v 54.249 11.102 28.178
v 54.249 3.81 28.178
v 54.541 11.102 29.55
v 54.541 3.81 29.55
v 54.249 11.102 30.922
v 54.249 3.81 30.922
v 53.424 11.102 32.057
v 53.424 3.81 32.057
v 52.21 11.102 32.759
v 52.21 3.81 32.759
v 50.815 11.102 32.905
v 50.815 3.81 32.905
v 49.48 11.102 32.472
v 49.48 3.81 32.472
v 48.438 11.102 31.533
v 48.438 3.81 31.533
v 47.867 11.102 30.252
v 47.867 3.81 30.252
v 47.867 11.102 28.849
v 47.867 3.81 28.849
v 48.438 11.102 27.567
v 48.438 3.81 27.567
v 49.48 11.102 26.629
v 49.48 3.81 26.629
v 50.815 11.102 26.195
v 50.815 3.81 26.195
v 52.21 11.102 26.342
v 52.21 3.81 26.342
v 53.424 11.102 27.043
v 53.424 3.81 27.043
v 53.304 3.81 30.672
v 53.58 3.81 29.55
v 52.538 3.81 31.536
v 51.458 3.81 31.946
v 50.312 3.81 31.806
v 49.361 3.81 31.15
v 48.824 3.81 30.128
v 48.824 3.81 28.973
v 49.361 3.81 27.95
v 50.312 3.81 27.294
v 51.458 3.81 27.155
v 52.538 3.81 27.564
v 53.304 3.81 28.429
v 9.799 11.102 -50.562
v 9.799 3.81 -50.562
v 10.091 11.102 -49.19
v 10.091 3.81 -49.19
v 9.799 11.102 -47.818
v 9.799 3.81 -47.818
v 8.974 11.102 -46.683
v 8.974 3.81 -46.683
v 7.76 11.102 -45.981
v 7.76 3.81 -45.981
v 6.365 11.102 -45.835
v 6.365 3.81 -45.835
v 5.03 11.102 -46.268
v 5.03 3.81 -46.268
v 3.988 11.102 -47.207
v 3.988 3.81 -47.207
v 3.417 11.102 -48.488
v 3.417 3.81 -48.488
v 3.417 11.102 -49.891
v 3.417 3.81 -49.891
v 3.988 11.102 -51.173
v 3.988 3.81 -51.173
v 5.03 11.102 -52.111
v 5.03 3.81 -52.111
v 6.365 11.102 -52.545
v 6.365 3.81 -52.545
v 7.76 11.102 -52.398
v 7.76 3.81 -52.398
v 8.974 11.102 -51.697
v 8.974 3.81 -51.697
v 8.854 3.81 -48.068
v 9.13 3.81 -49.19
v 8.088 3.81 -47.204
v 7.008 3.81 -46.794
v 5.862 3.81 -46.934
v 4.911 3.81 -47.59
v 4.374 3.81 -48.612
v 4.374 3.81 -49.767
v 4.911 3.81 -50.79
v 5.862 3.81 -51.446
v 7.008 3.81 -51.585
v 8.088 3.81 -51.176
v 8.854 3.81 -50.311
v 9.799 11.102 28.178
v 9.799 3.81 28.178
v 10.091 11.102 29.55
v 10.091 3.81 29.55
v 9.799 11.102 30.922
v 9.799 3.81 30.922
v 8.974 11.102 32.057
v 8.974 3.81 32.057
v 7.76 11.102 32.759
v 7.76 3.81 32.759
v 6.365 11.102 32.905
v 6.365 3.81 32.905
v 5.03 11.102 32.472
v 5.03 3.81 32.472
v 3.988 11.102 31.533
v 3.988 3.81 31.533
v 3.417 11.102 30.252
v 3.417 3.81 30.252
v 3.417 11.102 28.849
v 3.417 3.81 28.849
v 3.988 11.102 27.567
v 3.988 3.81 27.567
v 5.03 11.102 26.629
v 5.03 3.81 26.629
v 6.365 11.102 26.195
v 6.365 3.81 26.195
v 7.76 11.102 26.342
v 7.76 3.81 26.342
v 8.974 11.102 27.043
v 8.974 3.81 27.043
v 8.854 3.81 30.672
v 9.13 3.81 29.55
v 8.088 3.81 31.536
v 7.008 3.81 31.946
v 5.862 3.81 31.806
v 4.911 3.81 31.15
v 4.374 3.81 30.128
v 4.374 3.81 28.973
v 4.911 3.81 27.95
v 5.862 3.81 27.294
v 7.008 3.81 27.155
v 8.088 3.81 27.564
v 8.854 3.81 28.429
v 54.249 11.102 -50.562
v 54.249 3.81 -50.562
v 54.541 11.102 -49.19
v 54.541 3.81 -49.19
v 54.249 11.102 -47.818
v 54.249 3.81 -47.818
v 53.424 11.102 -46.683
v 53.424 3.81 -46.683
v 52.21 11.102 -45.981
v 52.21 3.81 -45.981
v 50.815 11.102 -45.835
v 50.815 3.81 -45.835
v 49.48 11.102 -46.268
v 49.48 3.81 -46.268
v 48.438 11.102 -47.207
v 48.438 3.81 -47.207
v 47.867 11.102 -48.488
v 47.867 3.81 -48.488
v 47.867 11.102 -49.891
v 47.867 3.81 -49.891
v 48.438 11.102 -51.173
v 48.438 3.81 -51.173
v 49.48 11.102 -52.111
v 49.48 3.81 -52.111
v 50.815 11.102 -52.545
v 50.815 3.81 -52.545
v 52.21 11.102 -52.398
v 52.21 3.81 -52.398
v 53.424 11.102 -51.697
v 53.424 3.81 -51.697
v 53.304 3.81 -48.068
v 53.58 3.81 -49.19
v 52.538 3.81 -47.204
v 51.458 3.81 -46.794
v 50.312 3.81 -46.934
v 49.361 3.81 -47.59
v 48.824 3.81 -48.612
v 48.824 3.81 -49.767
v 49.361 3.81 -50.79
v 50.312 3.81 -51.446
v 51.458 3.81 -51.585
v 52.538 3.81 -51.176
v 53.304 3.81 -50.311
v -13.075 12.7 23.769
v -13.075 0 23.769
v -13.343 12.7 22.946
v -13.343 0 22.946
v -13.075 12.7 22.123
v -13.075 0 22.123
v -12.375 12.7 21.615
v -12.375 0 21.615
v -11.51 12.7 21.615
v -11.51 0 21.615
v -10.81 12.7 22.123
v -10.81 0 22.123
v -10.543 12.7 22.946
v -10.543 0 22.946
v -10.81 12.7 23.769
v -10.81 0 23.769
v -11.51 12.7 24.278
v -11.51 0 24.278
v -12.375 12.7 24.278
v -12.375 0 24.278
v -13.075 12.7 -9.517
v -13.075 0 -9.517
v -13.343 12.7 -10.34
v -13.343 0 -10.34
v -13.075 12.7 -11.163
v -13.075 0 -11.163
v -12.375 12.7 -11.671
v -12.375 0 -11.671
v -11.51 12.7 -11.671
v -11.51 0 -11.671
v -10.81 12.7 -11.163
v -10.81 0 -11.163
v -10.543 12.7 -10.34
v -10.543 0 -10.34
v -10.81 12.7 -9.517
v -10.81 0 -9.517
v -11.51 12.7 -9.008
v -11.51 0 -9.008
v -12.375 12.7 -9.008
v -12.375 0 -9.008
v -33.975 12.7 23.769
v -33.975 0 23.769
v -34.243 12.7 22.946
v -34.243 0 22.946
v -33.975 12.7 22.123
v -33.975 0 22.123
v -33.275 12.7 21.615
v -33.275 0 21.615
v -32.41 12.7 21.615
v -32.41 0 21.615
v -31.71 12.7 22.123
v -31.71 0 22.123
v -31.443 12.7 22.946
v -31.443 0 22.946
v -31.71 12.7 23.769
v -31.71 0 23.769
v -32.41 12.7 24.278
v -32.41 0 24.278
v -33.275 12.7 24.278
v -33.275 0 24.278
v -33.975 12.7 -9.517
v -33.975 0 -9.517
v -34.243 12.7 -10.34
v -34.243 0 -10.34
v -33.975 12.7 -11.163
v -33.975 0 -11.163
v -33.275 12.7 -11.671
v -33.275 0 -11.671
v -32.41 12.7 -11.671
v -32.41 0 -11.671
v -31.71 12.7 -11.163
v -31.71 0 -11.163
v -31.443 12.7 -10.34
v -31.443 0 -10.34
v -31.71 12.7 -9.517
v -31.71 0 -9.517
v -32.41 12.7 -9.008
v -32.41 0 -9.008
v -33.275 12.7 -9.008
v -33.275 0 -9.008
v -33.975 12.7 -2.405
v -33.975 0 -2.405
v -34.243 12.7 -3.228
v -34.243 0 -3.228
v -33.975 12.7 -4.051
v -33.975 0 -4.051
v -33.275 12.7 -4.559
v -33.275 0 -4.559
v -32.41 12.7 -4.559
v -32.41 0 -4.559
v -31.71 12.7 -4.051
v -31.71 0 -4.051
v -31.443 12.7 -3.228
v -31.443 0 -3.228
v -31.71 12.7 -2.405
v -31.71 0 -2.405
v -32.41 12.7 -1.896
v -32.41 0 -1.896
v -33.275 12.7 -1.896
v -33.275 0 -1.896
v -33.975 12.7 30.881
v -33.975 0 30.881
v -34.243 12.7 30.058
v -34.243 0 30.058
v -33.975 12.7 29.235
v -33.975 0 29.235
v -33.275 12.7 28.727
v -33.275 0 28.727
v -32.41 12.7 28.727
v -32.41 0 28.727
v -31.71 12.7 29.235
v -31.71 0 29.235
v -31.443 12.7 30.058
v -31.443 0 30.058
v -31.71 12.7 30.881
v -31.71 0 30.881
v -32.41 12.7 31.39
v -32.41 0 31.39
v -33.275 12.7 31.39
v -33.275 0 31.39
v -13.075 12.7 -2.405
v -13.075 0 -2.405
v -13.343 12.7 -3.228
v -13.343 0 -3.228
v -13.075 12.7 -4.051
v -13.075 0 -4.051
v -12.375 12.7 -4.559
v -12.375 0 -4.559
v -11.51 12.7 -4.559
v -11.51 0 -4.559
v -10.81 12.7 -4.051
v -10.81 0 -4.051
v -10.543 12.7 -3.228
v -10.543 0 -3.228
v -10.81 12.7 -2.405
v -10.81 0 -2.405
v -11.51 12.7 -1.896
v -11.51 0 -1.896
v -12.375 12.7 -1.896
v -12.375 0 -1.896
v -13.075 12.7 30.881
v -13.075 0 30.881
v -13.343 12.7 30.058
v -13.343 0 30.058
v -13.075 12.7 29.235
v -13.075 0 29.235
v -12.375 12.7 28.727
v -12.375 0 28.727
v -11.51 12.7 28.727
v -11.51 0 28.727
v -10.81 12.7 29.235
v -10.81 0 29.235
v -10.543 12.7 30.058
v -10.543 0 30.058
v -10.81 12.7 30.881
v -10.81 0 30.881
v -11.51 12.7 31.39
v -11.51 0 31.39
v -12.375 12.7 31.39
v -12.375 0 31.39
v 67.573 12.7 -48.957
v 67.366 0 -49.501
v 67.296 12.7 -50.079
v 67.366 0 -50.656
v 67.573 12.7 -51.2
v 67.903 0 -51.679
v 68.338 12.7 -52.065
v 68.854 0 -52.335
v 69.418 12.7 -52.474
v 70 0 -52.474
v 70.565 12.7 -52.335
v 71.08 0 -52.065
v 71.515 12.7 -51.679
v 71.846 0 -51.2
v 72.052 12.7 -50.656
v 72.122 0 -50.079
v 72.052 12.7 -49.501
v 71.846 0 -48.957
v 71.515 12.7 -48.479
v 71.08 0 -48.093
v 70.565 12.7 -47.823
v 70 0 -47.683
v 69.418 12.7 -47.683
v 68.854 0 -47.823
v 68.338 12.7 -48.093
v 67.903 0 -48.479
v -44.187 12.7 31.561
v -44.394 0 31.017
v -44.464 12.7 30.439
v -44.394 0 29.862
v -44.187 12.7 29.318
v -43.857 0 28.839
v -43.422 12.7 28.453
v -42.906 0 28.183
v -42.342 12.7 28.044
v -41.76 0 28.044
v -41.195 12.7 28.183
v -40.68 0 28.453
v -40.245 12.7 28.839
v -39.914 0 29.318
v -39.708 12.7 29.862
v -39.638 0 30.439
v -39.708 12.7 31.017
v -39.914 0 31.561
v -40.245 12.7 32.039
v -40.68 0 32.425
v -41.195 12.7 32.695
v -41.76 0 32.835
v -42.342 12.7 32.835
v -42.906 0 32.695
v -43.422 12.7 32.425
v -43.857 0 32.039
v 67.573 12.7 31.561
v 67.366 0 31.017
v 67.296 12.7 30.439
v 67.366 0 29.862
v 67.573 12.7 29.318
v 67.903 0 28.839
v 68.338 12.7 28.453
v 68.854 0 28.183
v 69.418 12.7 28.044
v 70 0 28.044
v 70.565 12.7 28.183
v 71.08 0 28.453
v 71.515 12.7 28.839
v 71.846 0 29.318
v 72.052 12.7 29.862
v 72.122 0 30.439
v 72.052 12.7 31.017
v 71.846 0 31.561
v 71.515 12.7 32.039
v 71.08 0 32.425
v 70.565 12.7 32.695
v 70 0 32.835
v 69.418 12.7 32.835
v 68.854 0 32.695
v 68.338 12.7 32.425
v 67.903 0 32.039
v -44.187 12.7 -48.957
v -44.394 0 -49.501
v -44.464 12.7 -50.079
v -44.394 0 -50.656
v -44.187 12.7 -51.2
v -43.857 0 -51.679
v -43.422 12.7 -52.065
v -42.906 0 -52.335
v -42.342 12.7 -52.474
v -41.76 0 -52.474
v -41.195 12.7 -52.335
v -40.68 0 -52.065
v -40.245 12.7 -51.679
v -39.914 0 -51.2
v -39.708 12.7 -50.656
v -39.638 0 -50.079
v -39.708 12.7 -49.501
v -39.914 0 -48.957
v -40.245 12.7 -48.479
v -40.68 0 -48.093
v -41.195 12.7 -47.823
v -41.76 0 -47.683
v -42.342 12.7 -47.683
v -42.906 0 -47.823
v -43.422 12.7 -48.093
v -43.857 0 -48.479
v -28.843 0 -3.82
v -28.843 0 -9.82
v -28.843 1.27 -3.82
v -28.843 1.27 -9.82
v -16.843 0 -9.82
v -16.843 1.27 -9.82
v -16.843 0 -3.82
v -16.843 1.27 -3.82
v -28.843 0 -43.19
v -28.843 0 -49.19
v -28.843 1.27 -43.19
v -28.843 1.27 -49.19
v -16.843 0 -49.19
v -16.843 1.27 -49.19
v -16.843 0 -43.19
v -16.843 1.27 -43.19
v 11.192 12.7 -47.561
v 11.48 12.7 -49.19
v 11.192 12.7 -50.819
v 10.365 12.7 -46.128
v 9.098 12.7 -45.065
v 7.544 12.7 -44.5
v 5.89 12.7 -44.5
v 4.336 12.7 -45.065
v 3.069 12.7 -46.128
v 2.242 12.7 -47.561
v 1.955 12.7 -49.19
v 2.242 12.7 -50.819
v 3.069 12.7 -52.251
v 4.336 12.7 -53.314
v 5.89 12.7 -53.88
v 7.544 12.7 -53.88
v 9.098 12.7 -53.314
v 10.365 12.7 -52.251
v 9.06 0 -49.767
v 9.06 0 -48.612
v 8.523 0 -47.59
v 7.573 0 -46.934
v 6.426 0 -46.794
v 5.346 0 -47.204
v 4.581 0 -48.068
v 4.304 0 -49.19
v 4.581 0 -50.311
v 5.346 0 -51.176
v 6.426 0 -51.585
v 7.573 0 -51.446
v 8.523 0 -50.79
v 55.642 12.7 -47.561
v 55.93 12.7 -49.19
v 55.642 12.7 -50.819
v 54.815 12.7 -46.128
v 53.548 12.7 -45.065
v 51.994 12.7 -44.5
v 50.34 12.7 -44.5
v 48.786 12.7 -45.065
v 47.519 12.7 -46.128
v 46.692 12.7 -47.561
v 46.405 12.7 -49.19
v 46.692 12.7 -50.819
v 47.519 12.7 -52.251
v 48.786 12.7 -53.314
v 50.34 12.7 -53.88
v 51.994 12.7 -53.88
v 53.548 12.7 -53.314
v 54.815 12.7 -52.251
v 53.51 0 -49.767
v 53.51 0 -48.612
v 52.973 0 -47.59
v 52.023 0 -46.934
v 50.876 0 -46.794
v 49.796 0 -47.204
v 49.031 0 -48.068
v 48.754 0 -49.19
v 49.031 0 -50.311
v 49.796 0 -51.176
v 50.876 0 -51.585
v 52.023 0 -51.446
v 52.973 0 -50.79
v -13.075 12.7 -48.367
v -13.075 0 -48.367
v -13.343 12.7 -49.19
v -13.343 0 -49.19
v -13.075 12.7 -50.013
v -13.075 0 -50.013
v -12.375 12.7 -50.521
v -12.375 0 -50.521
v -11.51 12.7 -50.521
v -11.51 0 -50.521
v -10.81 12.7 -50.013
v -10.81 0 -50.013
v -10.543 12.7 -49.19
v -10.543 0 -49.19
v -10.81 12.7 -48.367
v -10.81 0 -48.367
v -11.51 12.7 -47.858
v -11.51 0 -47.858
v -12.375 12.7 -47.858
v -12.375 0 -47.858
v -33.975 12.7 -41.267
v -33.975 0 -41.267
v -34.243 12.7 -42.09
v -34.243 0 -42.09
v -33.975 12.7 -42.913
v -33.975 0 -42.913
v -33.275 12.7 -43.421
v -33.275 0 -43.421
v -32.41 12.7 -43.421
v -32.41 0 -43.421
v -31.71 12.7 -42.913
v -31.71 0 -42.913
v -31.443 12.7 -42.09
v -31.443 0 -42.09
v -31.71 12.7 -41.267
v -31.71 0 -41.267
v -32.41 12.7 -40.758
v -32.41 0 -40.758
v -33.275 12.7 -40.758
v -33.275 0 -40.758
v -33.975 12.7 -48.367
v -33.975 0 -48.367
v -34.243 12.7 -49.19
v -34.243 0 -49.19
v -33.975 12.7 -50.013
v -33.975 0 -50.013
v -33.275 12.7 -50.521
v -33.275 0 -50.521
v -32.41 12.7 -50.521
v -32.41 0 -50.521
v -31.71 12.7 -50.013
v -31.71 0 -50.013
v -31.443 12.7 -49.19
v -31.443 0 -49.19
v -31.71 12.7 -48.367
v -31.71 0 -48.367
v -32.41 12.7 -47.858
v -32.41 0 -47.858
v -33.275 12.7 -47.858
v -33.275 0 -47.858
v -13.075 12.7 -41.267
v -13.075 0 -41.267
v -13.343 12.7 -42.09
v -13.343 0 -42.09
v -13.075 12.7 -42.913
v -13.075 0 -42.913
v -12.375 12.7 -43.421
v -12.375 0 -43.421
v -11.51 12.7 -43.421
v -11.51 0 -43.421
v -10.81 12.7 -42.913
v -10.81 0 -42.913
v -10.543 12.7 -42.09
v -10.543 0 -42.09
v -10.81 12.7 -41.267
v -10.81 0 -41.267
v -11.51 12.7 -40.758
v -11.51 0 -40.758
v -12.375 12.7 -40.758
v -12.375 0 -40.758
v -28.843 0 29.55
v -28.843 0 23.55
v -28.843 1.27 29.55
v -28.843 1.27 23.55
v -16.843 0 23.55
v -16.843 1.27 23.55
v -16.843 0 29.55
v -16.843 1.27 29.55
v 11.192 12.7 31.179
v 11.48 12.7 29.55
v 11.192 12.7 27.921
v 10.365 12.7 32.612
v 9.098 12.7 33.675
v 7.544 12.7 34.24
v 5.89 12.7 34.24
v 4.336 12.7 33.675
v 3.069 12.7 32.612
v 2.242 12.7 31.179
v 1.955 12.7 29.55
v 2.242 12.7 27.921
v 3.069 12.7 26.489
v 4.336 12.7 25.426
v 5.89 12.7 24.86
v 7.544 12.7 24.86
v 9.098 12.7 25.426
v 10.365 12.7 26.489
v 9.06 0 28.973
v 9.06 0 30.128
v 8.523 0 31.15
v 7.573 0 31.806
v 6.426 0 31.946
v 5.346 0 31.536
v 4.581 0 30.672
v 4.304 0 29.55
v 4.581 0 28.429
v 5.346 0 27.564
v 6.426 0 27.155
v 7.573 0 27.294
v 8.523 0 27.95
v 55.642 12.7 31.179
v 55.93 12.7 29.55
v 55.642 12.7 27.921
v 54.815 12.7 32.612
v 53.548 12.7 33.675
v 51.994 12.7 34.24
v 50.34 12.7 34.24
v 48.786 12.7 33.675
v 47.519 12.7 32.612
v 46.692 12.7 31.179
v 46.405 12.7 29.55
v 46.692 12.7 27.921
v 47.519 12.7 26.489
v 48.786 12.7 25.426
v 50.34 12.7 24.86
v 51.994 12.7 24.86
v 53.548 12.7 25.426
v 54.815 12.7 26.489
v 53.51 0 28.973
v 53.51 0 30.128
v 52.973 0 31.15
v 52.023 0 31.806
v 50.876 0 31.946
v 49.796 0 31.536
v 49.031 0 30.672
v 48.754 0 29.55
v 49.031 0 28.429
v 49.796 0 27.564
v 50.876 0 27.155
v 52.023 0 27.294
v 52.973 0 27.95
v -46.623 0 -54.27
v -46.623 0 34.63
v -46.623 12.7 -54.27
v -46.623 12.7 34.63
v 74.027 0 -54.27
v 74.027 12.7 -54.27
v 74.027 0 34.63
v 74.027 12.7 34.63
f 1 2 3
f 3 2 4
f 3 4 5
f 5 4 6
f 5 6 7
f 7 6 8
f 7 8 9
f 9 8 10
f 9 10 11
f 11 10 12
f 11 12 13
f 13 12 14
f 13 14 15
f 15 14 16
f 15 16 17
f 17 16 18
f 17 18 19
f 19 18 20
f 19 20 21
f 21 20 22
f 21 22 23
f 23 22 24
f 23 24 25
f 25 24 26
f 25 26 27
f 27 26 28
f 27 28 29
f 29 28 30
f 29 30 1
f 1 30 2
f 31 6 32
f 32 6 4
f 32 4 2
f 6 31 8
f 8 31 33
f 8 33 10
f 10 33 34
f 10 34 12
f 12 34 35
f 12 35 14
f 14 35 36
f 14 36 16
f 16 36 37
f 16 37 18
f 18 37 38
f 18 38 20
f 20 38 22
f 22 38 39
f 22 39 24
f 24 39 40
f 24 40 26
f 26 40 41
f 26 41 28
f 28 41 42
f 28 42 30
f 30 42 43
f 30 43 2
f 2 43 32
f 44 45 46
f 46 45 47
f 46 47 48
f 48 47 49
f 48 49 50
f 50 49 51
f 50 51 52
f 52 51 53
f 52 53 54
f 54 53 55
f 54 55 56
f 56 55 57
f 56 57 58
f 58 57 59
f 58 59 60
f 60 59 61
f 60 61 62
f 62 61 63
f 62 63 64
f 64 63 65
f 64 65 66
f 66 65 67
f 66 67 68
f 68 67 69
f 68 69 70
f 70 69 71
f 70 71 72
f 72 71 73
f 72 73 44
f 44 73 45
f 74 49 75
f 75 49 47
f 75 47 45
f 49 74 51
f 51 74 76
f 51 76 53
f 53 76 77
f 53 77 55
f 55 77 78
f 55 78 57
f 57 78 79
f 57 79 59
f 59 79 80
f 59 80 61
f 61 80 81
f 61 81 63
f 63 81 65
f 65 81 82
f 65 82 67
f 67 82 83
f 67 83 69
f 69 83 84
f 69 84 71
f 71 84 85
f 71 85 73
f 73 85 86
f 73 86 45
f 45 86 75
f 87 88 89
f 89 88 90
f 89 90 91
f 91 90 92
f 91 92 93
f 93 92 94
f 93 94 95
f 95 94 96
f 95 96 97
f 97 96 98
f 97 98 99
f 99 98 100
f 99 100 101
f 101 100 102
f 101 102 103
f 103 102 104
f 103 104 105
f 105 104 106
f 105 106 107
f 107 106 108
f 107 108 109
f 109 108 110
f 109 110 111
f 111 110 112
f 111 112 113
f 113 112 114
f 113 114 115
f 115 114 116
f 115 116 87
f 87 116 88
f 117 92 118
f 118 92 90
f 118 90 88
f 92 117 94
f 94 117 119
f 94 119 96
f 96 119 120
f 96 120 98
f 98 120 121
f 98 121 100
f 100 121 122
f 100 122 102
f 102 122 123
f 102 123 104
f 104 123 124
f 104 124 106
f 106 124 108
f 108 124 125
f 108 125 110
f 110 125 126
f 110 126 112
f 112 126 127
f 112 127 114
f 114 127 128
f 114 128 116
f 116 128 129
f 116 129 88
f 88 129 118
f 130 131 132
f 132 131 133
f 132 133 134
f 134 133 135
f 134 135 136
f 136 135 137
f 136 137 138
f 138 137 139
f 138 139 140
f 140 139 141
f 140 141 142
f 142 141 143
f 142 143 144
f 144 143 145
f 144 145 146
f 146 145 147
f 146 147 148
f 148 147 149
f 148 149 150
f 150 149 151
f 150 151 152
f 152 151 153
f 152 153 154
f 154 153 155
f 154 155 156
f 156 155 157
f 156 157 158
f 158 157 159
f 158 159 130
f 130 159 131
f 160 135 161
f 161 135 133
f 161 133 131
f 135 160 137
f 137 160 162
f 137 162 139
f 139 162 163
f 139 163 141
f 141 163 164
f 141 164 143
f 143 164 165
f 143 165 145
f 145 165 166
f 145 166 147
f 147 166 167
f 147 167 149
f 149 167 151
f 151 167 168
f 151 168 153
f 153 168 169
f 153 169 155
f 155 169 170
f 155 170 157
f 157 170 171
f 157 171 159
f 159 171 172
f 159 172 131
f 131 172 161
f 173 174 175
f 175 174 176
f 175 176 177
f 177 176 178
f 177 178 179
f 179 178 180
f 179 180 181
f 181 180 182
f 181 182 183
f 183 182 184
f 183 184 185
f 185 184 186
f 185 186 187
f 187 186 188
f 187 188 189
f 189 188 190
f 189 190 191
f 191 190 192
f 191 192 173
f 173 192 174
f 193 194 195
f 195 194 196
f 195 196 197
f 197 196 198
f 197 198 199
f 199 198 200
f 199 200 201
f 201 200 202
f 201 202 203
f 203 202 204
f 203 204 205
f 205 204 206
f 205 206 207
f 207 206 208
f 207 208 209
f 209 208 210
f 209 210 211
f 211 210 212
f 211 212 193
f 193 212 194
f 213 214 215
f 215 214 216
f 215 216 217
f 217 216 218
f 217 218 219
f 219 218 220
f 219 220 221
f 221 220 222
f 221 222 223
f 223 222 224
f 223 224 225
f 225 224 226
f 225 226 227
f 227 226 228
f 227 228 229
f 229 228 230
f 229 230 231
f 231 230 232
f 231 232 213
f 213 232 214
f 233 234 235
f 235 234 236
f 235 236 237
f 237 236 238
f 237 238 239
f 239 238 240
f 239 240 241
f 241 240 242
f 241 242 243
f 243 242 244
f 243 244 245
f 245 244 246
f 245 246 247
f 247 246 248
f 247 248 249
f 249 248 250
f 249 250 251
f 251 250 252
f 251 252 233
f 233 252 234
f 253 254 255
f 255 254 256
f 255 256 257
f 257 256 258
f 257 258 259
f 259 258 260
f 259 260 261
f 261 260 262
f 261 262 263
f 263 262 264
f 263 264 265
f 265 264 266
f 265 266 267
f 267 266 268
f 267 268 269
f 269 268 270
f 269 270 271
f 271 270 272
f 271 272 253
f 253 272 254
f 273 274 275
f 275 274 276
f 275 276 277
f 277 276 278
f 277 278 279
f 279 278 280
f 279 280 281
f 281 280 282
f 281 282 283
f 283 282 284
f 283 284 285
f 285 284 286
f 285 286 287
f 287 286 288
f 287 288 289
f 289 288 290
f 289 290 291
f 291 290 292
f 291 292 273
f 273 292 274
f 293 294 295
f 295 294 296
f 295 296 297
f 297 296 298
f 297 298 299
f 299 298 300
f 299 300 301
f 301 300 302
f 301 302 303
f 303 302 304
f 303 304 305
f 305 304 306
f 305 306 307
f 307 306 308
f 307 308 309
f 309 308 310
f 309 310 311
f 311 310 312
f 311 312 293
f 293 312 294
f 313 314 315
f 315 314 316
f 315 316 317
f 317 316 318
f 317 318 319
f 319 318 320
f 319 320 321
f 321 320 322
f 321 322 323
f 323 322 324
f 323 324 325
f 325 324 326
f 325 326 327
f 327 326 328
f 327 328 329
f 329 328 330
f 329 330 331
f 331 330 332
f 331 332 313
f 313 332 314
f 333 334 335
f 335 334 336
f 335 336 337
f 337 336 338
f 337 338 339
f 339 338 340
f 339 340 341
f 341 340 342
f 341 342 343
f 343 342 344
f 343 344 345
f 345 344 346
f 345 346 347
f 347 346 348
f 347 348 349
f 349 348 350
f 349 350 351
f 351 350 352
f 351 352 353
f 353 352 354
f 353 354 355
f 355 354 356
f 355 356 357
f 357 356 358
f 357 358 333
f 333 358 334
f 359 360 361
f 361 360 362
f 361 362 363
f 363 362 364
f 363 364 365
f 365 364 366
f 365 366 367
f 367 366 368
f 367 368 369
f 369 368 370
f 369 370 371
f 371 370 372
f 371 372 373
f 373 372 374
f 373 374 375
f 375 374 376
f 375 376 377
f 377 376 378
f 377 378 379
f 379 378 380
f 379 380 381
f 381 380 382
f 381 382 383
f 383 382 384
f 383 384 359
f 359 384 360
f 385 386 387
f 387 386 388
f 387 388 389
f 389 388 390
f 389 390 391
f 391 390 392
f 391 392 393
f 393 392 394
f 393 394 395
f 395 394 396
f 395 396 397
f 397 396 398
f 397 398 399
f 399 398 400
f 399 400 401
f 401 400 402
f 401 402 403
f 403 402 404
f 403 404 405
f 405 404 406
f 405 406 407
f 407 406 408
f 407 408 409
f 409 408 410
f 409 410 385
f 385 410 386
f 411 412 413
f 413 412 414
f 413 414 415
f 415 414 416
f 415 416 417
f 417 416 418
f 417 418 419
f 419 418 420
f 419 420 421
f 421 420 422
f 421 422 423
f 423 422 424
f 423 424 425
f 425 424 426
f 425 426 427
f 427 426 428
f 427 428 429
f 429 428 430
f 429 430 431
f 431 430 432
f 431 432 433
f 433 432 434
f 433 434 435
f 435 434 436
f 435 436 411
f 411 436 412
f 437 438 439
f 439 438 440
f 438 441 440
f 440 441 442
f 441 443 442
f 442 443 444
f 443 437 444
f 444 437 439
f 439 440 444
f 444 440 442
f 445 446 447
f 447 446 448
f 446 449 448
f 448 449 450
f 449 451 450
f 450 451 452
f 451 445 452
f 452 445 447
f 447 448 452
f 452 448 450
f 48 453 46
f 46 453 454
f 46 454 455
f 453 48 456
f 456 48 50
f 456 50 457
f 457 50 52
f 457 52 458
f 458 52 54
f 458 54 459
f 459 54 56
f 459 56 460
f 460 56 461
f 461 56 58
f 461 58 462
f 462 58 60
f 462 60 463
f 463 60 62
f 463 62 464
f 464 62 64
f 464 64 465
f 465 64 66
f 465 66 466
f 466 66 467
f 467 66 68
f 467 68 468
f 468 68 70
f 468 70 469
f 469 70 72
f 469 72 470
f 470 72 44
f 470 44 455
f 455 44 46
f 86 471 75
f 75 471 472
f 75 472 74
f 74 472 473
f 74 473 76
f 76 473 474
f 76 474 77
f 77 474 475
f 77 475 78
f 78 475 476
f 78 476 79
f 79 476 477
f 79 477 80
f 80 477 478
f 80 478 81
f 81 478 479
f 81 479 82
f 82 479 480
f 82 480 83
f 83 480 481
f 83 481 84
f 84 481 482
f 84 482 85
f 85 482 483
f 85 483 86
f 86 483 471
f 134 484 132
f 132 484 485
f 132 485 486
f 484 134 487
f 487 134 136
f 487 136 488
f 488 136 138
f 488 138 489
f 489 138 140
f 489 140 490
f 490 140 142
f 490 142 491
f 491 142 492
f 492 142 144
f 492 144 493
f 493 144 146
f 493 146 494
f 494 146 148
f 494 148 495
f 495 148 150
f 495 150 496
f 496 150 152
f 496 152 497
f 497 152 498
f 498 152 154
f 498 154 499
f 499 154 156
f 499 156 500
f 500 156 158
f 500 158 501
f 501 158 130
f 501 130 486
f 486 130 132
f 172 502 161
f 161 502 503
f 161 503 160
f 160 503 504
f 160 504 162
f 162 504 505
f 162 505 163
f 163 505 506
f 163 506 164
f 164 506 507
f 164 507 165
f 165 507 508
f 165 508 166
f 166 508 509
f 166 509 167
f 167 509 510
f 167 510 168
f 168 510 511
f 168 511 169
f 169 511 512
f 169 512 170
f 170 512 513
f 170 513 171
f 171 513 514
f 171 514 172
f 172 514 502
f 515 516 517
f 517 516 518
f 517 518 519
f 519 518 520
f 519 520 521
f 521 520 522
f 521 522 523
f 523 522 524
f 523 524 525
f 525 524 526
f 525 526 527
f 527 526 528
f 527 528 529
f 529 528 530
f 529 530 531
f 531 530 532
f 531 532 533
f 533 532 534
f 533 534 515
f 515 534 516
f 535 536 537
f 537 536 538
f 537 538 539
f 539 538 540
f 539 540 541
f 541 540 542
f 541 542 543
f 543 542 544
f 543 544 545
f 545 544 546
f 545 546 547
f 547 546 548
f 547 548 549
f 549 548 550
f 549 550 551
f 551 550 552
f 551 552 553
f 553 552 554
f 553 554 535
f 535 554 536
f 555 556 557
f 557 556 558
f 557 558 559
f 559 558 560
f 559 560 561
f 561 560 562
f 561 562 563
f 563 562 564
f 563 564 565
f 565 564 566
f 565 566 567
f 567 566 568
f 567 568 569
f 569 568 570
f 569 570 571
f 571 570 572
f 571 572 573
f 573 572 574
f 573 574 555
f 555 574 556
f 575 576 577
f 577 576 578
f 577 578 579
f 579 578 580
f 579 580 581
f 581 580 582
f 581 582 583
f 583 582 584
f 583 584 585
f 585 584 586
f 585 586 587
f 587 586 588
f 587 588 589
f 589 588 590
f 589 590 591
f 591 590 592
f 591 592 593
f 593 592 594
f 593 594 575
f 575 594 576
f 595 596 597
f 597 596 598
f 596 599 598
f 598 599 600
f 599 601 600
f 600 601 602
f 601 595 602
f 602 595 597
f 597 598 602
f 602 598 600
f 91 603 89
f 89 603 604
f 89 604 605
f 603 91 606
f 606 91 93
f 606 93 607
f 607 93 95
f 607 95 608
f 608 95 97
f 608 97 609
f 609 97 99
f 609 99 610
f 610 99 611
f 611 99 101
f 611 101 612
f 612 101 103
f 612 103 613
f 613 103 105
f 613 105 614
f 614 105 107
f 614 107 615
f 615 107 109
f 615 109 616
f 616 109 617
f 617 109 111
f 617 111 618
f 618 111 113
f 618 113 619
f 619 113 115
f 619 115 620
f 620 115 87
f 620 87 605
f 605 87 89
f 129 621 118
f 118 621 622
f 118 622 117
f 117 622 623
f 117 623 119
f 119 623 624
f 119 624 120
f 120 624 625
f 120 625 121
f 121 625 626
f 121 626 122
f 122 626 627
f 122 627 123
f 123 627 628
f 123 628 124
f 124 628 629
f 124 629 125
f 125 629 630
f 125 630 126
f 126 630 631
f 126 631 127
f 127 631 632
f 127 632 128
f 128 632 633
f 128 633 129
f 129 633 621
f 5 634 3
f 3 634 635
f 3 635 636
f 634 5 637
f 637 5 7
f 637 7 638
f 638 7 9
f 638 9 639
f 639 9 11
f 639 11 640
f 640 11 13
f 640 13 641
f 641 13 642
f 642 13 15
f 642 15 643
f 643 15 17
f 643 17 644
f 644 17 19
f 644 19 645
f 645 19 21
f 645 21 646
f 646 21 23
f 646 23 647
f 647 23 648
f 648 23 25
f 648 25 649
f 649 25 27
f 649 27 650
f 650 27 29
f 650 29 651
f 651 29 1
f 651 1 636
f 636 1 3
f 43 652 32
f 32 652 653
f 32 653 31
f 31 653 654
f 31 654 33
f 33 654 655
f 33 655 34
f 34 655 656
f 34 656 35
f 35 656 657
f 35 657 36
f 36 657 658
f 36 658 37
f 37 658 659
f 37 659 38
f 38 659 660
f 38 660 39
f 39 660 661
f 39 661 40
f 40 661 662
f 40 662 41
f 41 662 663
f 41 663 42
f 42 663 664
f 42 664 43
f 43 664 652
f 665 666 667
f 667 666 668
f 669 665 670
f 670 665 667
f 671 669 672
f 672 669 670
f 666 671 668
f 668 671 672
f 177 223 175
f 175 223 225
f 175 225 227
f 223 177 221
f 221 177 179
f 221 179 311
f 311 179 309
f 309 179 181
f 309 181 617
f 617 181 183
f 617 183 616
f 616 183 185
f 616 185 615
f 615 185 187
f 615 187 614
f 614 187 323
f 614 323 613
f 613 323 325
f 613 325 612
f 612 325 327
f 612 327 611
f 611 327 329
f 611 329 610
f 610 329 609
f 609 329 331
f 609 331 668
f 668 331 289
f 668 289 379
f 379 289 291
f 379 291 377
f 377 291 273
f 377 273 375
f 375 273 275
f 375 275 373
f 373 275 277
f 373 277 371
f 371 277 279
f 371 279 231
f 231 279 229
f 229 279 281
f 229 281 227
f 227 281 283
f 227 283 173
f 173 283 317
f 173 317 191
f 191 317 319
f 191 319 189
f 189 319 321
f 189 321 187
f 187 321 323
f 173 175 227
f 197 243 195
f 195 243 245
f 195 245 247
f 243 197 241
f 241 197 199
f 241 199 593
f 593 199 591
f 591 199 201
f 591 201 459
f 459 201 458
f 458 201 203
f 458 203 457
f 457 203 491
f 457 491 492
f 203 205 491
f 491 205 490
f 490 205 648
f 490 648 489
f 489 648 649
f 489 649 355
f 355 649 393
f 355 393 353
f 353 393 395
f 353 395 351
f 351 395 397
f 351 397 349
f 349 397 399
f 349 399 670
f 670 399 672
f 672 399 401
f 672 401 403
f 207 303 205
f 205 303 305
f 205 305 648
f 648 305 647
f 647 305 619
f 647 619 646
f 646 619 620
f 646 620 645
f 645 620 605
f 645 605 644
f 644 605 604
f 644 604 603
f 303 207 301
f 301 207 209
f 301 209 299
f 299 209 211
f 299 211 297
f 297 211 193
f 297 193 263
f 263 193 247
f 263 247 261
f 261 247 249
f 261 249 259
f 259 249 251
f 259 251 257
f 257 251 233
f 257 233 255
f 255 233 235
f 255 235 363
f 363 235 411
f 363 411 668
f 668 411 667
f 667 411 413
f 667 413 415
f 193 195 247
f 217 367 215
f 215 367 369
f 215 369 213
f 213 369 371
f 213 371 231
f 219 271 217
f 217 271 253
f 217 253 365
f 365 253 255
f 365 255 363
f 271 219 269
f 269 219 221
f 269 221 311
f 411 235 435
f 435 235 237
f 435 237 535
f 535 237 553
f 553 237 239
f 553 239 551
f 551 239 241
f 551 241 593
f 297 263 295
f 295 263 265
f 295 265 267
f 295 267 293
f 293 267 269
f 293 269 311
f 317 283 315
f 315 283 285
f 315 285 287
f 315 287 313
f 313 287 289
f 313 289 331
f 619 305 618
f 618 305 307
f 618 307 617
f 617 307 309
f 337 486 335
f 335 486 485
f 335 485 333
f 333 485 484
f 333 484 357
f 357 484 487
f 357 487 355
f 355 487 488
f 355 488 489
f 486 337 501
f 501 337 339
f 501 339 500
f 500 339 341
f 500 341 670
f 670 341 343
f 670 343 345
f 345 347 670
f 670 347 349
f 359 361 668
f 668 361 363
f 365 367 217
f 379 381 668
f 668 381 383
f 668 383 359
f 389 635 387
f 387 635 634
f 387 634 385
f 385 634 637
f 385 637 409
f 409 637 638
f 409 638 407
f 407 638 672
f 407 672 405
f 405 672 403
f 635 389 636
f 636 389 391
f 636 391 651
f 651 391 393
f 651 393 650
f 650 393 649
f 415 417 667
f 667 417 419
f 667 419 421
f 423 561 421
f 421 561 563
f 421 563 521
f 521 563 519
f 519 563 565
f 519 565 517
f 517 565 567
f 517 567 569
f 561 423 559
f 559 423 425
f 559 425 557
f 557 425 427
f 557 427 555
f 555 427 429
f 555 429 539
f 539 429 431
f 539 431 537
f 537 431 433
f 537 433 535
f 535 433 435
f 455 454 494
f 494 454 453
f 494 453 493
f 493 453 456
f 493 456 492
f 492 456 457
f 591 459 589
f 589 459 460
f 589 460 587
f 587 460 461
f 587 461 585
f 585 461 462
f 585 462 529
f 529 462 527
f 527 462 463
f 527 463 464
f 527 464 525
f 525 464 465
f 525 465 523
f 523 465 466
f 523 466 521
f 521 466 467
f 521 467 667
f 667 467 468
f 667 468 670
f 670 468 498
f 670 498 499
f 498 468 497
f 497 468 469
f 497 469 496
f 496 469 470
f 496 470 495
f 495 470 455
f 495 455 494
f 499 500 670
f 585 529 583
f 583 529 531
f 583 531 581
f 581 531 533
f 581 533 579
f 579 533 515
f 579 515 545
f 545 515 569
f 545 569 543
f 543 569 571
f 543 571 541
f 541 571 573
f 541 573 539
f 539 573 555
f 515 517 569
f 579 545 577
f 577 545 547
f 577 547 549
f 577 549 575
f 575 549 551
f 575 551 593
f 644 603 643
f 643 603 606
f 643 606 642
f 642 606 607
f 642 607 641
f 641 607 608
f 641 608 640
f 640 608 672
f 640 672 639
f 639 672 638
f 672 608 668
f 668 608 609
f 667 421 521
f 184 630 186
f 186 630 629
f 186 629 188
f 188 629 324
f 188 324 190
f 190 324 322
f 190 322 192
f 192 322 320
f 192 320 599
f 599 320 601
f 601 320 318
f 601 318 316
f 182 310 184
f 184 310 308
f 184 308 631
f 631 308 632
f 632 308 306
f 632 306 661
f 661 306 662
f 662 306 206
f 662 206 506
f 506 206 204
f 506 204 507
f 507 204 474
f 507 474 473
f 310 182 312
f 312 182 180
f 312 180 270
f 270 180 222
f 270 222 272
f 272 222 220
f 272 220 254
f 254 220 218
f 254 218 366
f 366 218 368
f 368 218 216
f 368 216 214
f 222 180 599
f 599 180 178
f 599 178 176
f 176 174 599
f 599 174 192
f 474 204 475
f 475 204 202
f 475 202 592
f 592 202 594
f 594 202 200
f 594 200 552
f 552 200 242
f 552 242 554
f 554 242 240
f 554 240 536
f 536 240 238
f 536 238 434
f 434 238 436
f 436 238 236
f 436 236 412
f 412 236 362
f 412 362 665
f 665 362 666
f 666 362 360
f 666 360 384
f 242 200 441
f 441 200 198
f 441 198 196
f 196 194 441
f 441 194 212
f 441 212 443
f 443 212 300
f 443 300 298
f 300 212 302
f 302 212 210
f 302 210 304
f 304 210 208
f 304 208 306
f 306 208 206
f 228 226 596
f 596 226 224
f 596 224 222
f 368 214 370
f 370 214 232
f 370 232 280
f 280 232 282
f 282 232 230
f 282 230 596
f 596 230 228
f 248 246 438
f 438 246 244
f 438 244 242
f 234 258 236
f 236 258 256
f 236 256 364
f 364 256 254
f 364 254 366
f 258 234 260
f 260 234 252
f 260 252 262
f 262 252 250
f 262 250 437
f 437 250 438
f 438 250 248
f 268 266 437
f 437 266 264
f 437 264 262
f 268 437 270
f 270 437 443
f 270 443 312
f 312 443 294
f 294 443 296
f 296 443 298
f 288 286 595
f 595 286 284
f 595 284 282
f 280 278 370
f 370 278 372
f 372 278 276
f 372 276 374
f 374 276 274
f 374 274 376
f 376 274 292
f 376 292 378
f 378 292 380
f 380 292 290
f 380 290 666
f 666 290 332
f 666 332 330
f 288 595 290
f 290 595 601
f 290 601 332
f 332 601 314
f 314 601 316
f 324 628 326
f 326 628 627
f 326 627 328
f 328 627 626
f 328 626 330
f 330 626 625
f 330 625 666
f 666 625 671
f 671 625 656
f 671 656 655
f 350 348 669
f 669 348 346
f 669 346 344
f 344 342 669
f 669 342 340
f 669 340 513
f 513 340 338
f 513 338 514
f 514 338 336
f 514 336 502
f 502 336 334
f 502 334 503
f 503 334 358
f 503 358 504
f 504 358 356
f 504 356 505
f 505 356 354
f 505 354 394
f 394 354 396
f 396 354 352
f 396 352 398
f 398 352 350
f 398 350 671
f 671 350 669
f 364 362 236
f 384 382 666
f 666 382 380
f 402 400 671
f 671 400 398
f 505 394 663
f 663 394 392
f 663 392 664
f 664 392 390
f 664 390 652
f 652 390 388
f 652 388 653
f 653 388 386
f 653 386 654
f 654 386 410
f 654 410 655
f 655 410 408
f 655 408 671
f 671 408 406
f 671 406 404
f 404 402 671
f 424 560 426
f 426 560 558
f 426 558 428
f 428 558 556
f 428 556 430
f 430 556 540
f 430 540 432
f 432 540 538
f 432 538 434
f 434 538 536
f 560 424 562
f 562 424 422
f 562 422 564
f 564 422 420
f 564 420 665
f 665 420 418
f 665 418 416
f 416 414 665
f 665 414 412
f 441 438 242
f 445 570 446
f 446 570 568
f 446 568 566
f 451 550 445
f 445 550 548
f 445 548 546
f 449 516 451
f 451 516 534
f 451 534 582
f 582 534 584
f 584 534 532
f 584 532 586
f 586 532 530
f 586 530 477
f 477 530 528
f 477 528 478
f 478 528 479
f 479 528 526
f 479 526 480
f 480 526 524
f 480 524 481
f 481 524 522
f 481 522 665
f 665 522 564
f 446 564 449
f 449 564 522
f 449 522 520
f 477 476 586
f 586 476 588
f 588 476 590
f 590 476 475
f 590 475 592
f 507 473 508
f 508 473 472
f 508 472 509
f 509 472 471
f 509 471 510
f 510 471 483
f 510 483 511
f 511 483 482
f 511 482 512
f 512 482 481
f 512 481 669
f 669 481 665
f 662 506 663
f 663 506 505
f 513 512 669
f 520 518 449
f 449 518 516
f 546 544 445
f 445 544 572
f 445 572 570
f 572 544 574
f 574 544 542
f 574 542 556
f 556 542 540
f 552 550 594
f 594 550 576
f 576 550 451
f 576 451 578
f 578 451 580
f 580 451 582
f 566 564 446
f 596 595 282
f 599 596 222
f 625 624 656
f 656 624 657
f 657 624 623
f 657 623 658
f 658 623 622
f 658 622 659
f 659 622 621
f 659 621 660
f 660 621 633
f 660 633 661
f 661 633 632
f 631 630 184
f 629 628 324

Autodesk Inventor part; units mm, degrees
ref_plane "YZ Plane" through (0, 0, 0) normal (1, 0, 0) x (0, 1, 0)
ref_plane "XZ Plane" through (0, 0, 0) normal (0, 1, 0) x (-1, 0, 0)
ref_plane "XY Plane" through (0, 0, 0) normal (0, 0, 1) x (1, 0, 0)
sketch "Sketch1" plane through (0, 0, 0) normal (0, 1, 0) x (-1, 0, 0)
  line L0 (46.6228, 34.6302) -> (-74.0272, 34.6302)
  line L1 (-74.0272, 34.6302) -> (-74.0272, -54.2698)
  line L2 (-74.0272, -54.2698) -> (46.6228, -54.2698)
  line L3 (46.6228, -54.2698) -> (46.6228, 34.6302)
  point P0 (0, 0)
  dimension "d0" = 120.65
  dimension "d1" = 88.9
extrude "Extrusion1" add sketch "Sketch1" along normal blind 12.7
sketch "Sketch2" plane through (0, 12.7, 0) normal (0, 1, 0) x (1, 0, 0)
  line L0 (-46.6228, -34.6302) -> (74.0272, -34.6302) projected
  line L1 (-46.6228, 54.2698) -> (-46.6228, -34.6302) projected
  point P0 (0, 0)
  point P1 (6.7172, -29.5502)
  point P2 (51.1672, -29.5502)
  dimension "d4" = 0
  dimension "d5" = 5.08
  dimension "d6" = 53.34
  dimension "d7" = 44.45
hole "Hole1" at (6.7172, 12.7, 29.5502) at (51.1672, 12.7, 29.5502) direction (0, -1, 0) diameter 4.826 depth 25.4 tip angle 118 countersink diameter 9.525 countersink angle 82
sketch "Sketch3" plane through (0, 0, 0) normal (0, -1, 0) x (1, 0, 0)
  line L0 (-16.8428, 29.5502) -> (-28.8428, 29.5502)
  line L1 (-28.8428, 29.5502) -> (-28.8428, 23.5502)
  line L2 (-28.8428, 23.5502) -> (-16.8428, 23.5502)
  line L3 (-16.8428, 23.5502) -> (-16.8428, 29.5502)
  line L4 (-46.6228, 34.6302) -> (74.0272, 34.6302) projected
  line L5 (-46.6228, -54.2698) -> (-46.6228, 34.6302) projected
  point P0 (0, 0)
  dimension "d15" = 6
  dimension "d16" = 12
  dimension "d17" = 5.08
  dimension "d18" = 17.78
extrude "Extrusion2" cut sketch "Sketch3" against normal blind 1.27
sketch "Sketch4" plane through (0, 0, 0) normal (0, -1, 0) x (1, 0, 0)
  line L0 (74.0272, -54.2698) -> (-46.6228, -54.2698) projected
  line L1 (-28.8428, 23.5502) -> (-28.8428, 29.5502) projected
  line L2 (-46.6228, -54.2698) -> (-46.6228, 34.6302) projected
  point P0 (0, 0)
  point P1 (-32.8428, -42.0898)
  point P2 (-32.8428, -49.1898)
  point P3 (-11.9428, -49.1898)
  point P4 (-11.9428, -42.0898)
  dimension "d21" = 0
  dimension "d22" = 0
  dimension "d23" = 0
  dimension "d24" = 0
  dimension "d25" = 5.08
  dimension "d26" = 7.1
  dimension "d27" = 20.9
  dimension "d35" = 4
  dimension "d92" = 13.78
hole "Hole2" at (-32.8428, 0, -42.0898) at (-32.8428, 0, -49.1898) at (-11.9428, 0, -49.1898) at (-11.9428, 0, -42.0898) direction (0, 1, 0) diameter 2.8 depth 25.4 tip angle 118
sketch "Sketch6" plane through (0, 0, 0) normal (0, -1, 0) x (1, 0, 0)
  line L0 (-46.6228, 34.6302) -> (74.0272, 34.6302) projected
  line L1 (-46.6228, -54.2698) -> (-46.6228, 34.6302) projected
  line L2 (74.0272, -54.2698) -> (-46.6228, -54.2698) projected
  point P0 (0, 0)
  point P1 (69.7092, -50.0788)
  point P2 (-42.0508, -50.0788)
  point P3 (-42.0508, 30.4392)
  point P4 (69.7092, 30.4392)
  dimension "d43" = 0
  dimension "d44" = 0
  dimension "d46" = 111.76
  dimension "d47" = 0
  dimension "d48" = 0
  dimension "d50" = 4.191
  dimension "d51" = 4.572
  dimension "d91" = 4.191
hole "Hole4" at (69.7092, 0, -50.0788) at (-42.0508, 0, -50.0788) at (-42.0508, 0, 30.4392) at (69.7092, 0, 30.4392) direction (0, 1, 0) diameter 4.8 depth 25.4 tip angle 118
sketch "Sketch10" plane through (0, 12.7, 0) normal (0, 1, 0) x (1, 0, 0)
  circle A0 centre (51.1672, -29.5502) radius 2.413 projected
  circle A1 centre (6.7172, -29.5502) radius 2.413 projected
  line L0 (74.0272, 54.2698) -> (-46.6228, 54.2698) projected
  point P0 (0, 0)
  point P1 (6.7172, 49.1898)
  point P2 (51.1672, 49.1898)
  point P3 (66.6772, 28.8698)
  point P4 (-45.6228, 28.8698)
  point P5 (-46.6228, 54.2698)
  dimension "d80" = 0
  dimension "d81" = 0
  dimension "d82" = 0
  dimension "d83" = 5.08
hole "Hole7" at (6.7172, 12.7, -49.1898) at (51.1672, 12.7, -49.1898) direction (0, -1, 0) diameter 4.826 end through all countersink diameter 9.525 countersink angle 82
sketch "Sketch11" plane through (0, 0, 0) normal (0, -1, 0) x (1, 0, 0)
  line L0 (-28.8428, -3.8198) -> (-16.8428, -3.8198)
  line L1 (-16.8428, -3.8198) -> (-16.8428, -9.8198)
  line L2 (-16.8428, -9.8198) -> (-28.8428, -9.8198)
  line L3 (-28.8428, -9.8198) -> (-28.8428, -3.8198)
  line L4 (-28.8428, -43.1898) -> (-16.8428, -43.1898)
  line L5 (-16.8428, -43.1898) -> (-16.8428, -49.1898)
  line L6 (-16.8428, -49.1898) -> (-28.8428, -49.1898)
  line L7 (-28.8428, -49.1898) -> (-28.8428, -43.1898)
  line L8 (-28.8428, 23.5502) -> (-28.8428, 29.5502) projected
  line L9 (-16.8428, 29.5502) -> (-16.8428, 23.5502) projected
  line L10 (74.0272, -54.2698) -> (-46.6228, -54.2698) projected
  point P0 (0, 0)
  dimension "d93" = 0
  dimension "d94" = 0
  dimension "d95" = 0
  dimension "d96" = 0
  dimension "d97" = 6
  dimension "d98" = 6
  dimension "d99" = 5.08
  dimension "d100" = 44.45
extrude "Extrusion4" cut sketch "Sketch11" against normal blind 1.27
sketch "Sketch12" plane through (0, 0, 0) normal (0, -1, 0) x (1, 0, 0)
  circle A0 centre (-42.0508, 30.4392) radius 2.4 projected
  circle A1 centre (69.7092, 30.4392) radius 2.4 projected
  circle A2 centre (69.7092, -50.0788) radius 2.4 projected
  circle A3 centre (-42.0508, -50.0788) radius 2.4 projected
  point P0 (0, 0)
hole "Hole8" at (-42.0508, 0, 30.4392) at (69.7092, 0, 30.4392) at (69.7092, 0, -50.0788) at (-42.0508, 0, -50.0788) direction (0, 1, 0) diameter 4.826 end through all
sketch "Sketch13" plane through (0, 0, 0) normal (0, -1, 0) x (1, 0, 0)
  circle A0 centre (-32.8428, -42.0898) radius 1.4 projected
  circle A1 centre (-32.8428, -49.1898) radius 1.4 projected
  line L0 (-46.6228, 34.6302) -> (74.0272, 34.6302) projected
  circle A2 centre (-11.9428, -42.0898) radius 1.4 projected
  point P0 (0, 0)
  point P1 (-32.8428, -10.3398)
  point P2 (-32.8428, -3.2278)
  point P3 (-32.8428, 22.9462)
  point P4 (-32.8428, 30.0582)
  point P5 (-39.7887, 34.6302)
  point P6 (67.4471, 34.6302)
  point P7 (-11.9428, -10.3398)
  point P8 (-11.9428, -3.2278)
  point P9 (-11.9428, 22.9462)
  point P10 (-11.9428, 30.0582)
  dimension "d110" = 0
  dimension "d111" = 0
  dimension "d112" = 0
  dimension "d113" = 7.112
  dimension "d114" = 7.112
  dimension "d115" = 31.75
  dimension "d116" = 4.572
  dimension "d117" = 0
  dimension "d118" = 0
  dimension "d119" = 0
  dimension "d120" = 0
  dimension "d121" = 0
  dimension "d122" = 0
  dimension "d123" = 0
  dimension "d124" = 0
hole "Hole9" at (-32.8428, 0, -10.3398) at (-32.8428, 0, -3.2278) at (-32.8428, 0, 22.9462) at (-32.8428, 0, 30.0582) at (-11.9428, 0, -10.3398) at (-11.9428, 0, -3.2278) at (-11.9428, 0, 22.9462) at (-11.9428, 0, 30.0582) direction (0, 1, 0) diameter 2.8 end through all
sketch "Sketch15" plane through (0, 12.7, 0) normal (0, 1, 0) x (1, 0, 0)
  circle A0 centre (6.7172, 49.1898) radius 2.413 projected
  circle A1 centre (51.1672, 49.1898) radius 2.413 projected
  circle A2 centre (6.7172, -29.5502) radius 2.413 projected
  circle A3 centre (51.1672, -29.5502) radius 2.413 projected
  circle A4 centre (6.7172, 49.1898) radius 3.3734
  circle A5 centre (6.7172, -29.5502) radius 3.3734
  circle A6 centre (51.1672, -29.5502) radius 3.3734
  circle A7 centre (51.1672, 49.1898) radius 3.3734
  point P0 (0, 0)
  dimension "d138" = 6.7469
  dimension "d139" = 6.7469
  dimension "d140" = 6.7469
  dimension "d141" = 6.7469
extrude "Extrusion6" cut sketch "Sketch15" against normal blind 8.89
equation "\"d15\" = CanConPinWidth"
equation "\"d16\" = CanConPinLength"
equation "\"d26\" = CanConBetweenTopHoles"
equation "\"d27\" = CanConBetweenSideHoles"
equation "\"d35\" = CanConHoleFromTopPin"
equation "\"d28\" = CanConHoleDiam"
equation "\"d52\" = LegoMainHole"
equation "\"d125\" = CanConHoleDiam"
equation "\"LegoMainHole\" = 4.8"
equation "\"TalonSRXWidth\" = 31.75"
equation "\"TalonSRXFromSide\" = 15.875"
equation "\"TalonSRXBetweenHoles\" = 50.8"
equation "\"CanConPinWidth\" = 6"
equation "\"CanConPinLength\" = 12"
equation "\"CanConBetweenSideHoles\" = 20.9"
equation "\"CanConBetweenTopHoles\" = 7.1"
equation "\"CanConHoleDiam\" = 2.8"
equation "\"CanConHoleFromTopPin\" = 4"
properties part number "SparkMaxPlate"
